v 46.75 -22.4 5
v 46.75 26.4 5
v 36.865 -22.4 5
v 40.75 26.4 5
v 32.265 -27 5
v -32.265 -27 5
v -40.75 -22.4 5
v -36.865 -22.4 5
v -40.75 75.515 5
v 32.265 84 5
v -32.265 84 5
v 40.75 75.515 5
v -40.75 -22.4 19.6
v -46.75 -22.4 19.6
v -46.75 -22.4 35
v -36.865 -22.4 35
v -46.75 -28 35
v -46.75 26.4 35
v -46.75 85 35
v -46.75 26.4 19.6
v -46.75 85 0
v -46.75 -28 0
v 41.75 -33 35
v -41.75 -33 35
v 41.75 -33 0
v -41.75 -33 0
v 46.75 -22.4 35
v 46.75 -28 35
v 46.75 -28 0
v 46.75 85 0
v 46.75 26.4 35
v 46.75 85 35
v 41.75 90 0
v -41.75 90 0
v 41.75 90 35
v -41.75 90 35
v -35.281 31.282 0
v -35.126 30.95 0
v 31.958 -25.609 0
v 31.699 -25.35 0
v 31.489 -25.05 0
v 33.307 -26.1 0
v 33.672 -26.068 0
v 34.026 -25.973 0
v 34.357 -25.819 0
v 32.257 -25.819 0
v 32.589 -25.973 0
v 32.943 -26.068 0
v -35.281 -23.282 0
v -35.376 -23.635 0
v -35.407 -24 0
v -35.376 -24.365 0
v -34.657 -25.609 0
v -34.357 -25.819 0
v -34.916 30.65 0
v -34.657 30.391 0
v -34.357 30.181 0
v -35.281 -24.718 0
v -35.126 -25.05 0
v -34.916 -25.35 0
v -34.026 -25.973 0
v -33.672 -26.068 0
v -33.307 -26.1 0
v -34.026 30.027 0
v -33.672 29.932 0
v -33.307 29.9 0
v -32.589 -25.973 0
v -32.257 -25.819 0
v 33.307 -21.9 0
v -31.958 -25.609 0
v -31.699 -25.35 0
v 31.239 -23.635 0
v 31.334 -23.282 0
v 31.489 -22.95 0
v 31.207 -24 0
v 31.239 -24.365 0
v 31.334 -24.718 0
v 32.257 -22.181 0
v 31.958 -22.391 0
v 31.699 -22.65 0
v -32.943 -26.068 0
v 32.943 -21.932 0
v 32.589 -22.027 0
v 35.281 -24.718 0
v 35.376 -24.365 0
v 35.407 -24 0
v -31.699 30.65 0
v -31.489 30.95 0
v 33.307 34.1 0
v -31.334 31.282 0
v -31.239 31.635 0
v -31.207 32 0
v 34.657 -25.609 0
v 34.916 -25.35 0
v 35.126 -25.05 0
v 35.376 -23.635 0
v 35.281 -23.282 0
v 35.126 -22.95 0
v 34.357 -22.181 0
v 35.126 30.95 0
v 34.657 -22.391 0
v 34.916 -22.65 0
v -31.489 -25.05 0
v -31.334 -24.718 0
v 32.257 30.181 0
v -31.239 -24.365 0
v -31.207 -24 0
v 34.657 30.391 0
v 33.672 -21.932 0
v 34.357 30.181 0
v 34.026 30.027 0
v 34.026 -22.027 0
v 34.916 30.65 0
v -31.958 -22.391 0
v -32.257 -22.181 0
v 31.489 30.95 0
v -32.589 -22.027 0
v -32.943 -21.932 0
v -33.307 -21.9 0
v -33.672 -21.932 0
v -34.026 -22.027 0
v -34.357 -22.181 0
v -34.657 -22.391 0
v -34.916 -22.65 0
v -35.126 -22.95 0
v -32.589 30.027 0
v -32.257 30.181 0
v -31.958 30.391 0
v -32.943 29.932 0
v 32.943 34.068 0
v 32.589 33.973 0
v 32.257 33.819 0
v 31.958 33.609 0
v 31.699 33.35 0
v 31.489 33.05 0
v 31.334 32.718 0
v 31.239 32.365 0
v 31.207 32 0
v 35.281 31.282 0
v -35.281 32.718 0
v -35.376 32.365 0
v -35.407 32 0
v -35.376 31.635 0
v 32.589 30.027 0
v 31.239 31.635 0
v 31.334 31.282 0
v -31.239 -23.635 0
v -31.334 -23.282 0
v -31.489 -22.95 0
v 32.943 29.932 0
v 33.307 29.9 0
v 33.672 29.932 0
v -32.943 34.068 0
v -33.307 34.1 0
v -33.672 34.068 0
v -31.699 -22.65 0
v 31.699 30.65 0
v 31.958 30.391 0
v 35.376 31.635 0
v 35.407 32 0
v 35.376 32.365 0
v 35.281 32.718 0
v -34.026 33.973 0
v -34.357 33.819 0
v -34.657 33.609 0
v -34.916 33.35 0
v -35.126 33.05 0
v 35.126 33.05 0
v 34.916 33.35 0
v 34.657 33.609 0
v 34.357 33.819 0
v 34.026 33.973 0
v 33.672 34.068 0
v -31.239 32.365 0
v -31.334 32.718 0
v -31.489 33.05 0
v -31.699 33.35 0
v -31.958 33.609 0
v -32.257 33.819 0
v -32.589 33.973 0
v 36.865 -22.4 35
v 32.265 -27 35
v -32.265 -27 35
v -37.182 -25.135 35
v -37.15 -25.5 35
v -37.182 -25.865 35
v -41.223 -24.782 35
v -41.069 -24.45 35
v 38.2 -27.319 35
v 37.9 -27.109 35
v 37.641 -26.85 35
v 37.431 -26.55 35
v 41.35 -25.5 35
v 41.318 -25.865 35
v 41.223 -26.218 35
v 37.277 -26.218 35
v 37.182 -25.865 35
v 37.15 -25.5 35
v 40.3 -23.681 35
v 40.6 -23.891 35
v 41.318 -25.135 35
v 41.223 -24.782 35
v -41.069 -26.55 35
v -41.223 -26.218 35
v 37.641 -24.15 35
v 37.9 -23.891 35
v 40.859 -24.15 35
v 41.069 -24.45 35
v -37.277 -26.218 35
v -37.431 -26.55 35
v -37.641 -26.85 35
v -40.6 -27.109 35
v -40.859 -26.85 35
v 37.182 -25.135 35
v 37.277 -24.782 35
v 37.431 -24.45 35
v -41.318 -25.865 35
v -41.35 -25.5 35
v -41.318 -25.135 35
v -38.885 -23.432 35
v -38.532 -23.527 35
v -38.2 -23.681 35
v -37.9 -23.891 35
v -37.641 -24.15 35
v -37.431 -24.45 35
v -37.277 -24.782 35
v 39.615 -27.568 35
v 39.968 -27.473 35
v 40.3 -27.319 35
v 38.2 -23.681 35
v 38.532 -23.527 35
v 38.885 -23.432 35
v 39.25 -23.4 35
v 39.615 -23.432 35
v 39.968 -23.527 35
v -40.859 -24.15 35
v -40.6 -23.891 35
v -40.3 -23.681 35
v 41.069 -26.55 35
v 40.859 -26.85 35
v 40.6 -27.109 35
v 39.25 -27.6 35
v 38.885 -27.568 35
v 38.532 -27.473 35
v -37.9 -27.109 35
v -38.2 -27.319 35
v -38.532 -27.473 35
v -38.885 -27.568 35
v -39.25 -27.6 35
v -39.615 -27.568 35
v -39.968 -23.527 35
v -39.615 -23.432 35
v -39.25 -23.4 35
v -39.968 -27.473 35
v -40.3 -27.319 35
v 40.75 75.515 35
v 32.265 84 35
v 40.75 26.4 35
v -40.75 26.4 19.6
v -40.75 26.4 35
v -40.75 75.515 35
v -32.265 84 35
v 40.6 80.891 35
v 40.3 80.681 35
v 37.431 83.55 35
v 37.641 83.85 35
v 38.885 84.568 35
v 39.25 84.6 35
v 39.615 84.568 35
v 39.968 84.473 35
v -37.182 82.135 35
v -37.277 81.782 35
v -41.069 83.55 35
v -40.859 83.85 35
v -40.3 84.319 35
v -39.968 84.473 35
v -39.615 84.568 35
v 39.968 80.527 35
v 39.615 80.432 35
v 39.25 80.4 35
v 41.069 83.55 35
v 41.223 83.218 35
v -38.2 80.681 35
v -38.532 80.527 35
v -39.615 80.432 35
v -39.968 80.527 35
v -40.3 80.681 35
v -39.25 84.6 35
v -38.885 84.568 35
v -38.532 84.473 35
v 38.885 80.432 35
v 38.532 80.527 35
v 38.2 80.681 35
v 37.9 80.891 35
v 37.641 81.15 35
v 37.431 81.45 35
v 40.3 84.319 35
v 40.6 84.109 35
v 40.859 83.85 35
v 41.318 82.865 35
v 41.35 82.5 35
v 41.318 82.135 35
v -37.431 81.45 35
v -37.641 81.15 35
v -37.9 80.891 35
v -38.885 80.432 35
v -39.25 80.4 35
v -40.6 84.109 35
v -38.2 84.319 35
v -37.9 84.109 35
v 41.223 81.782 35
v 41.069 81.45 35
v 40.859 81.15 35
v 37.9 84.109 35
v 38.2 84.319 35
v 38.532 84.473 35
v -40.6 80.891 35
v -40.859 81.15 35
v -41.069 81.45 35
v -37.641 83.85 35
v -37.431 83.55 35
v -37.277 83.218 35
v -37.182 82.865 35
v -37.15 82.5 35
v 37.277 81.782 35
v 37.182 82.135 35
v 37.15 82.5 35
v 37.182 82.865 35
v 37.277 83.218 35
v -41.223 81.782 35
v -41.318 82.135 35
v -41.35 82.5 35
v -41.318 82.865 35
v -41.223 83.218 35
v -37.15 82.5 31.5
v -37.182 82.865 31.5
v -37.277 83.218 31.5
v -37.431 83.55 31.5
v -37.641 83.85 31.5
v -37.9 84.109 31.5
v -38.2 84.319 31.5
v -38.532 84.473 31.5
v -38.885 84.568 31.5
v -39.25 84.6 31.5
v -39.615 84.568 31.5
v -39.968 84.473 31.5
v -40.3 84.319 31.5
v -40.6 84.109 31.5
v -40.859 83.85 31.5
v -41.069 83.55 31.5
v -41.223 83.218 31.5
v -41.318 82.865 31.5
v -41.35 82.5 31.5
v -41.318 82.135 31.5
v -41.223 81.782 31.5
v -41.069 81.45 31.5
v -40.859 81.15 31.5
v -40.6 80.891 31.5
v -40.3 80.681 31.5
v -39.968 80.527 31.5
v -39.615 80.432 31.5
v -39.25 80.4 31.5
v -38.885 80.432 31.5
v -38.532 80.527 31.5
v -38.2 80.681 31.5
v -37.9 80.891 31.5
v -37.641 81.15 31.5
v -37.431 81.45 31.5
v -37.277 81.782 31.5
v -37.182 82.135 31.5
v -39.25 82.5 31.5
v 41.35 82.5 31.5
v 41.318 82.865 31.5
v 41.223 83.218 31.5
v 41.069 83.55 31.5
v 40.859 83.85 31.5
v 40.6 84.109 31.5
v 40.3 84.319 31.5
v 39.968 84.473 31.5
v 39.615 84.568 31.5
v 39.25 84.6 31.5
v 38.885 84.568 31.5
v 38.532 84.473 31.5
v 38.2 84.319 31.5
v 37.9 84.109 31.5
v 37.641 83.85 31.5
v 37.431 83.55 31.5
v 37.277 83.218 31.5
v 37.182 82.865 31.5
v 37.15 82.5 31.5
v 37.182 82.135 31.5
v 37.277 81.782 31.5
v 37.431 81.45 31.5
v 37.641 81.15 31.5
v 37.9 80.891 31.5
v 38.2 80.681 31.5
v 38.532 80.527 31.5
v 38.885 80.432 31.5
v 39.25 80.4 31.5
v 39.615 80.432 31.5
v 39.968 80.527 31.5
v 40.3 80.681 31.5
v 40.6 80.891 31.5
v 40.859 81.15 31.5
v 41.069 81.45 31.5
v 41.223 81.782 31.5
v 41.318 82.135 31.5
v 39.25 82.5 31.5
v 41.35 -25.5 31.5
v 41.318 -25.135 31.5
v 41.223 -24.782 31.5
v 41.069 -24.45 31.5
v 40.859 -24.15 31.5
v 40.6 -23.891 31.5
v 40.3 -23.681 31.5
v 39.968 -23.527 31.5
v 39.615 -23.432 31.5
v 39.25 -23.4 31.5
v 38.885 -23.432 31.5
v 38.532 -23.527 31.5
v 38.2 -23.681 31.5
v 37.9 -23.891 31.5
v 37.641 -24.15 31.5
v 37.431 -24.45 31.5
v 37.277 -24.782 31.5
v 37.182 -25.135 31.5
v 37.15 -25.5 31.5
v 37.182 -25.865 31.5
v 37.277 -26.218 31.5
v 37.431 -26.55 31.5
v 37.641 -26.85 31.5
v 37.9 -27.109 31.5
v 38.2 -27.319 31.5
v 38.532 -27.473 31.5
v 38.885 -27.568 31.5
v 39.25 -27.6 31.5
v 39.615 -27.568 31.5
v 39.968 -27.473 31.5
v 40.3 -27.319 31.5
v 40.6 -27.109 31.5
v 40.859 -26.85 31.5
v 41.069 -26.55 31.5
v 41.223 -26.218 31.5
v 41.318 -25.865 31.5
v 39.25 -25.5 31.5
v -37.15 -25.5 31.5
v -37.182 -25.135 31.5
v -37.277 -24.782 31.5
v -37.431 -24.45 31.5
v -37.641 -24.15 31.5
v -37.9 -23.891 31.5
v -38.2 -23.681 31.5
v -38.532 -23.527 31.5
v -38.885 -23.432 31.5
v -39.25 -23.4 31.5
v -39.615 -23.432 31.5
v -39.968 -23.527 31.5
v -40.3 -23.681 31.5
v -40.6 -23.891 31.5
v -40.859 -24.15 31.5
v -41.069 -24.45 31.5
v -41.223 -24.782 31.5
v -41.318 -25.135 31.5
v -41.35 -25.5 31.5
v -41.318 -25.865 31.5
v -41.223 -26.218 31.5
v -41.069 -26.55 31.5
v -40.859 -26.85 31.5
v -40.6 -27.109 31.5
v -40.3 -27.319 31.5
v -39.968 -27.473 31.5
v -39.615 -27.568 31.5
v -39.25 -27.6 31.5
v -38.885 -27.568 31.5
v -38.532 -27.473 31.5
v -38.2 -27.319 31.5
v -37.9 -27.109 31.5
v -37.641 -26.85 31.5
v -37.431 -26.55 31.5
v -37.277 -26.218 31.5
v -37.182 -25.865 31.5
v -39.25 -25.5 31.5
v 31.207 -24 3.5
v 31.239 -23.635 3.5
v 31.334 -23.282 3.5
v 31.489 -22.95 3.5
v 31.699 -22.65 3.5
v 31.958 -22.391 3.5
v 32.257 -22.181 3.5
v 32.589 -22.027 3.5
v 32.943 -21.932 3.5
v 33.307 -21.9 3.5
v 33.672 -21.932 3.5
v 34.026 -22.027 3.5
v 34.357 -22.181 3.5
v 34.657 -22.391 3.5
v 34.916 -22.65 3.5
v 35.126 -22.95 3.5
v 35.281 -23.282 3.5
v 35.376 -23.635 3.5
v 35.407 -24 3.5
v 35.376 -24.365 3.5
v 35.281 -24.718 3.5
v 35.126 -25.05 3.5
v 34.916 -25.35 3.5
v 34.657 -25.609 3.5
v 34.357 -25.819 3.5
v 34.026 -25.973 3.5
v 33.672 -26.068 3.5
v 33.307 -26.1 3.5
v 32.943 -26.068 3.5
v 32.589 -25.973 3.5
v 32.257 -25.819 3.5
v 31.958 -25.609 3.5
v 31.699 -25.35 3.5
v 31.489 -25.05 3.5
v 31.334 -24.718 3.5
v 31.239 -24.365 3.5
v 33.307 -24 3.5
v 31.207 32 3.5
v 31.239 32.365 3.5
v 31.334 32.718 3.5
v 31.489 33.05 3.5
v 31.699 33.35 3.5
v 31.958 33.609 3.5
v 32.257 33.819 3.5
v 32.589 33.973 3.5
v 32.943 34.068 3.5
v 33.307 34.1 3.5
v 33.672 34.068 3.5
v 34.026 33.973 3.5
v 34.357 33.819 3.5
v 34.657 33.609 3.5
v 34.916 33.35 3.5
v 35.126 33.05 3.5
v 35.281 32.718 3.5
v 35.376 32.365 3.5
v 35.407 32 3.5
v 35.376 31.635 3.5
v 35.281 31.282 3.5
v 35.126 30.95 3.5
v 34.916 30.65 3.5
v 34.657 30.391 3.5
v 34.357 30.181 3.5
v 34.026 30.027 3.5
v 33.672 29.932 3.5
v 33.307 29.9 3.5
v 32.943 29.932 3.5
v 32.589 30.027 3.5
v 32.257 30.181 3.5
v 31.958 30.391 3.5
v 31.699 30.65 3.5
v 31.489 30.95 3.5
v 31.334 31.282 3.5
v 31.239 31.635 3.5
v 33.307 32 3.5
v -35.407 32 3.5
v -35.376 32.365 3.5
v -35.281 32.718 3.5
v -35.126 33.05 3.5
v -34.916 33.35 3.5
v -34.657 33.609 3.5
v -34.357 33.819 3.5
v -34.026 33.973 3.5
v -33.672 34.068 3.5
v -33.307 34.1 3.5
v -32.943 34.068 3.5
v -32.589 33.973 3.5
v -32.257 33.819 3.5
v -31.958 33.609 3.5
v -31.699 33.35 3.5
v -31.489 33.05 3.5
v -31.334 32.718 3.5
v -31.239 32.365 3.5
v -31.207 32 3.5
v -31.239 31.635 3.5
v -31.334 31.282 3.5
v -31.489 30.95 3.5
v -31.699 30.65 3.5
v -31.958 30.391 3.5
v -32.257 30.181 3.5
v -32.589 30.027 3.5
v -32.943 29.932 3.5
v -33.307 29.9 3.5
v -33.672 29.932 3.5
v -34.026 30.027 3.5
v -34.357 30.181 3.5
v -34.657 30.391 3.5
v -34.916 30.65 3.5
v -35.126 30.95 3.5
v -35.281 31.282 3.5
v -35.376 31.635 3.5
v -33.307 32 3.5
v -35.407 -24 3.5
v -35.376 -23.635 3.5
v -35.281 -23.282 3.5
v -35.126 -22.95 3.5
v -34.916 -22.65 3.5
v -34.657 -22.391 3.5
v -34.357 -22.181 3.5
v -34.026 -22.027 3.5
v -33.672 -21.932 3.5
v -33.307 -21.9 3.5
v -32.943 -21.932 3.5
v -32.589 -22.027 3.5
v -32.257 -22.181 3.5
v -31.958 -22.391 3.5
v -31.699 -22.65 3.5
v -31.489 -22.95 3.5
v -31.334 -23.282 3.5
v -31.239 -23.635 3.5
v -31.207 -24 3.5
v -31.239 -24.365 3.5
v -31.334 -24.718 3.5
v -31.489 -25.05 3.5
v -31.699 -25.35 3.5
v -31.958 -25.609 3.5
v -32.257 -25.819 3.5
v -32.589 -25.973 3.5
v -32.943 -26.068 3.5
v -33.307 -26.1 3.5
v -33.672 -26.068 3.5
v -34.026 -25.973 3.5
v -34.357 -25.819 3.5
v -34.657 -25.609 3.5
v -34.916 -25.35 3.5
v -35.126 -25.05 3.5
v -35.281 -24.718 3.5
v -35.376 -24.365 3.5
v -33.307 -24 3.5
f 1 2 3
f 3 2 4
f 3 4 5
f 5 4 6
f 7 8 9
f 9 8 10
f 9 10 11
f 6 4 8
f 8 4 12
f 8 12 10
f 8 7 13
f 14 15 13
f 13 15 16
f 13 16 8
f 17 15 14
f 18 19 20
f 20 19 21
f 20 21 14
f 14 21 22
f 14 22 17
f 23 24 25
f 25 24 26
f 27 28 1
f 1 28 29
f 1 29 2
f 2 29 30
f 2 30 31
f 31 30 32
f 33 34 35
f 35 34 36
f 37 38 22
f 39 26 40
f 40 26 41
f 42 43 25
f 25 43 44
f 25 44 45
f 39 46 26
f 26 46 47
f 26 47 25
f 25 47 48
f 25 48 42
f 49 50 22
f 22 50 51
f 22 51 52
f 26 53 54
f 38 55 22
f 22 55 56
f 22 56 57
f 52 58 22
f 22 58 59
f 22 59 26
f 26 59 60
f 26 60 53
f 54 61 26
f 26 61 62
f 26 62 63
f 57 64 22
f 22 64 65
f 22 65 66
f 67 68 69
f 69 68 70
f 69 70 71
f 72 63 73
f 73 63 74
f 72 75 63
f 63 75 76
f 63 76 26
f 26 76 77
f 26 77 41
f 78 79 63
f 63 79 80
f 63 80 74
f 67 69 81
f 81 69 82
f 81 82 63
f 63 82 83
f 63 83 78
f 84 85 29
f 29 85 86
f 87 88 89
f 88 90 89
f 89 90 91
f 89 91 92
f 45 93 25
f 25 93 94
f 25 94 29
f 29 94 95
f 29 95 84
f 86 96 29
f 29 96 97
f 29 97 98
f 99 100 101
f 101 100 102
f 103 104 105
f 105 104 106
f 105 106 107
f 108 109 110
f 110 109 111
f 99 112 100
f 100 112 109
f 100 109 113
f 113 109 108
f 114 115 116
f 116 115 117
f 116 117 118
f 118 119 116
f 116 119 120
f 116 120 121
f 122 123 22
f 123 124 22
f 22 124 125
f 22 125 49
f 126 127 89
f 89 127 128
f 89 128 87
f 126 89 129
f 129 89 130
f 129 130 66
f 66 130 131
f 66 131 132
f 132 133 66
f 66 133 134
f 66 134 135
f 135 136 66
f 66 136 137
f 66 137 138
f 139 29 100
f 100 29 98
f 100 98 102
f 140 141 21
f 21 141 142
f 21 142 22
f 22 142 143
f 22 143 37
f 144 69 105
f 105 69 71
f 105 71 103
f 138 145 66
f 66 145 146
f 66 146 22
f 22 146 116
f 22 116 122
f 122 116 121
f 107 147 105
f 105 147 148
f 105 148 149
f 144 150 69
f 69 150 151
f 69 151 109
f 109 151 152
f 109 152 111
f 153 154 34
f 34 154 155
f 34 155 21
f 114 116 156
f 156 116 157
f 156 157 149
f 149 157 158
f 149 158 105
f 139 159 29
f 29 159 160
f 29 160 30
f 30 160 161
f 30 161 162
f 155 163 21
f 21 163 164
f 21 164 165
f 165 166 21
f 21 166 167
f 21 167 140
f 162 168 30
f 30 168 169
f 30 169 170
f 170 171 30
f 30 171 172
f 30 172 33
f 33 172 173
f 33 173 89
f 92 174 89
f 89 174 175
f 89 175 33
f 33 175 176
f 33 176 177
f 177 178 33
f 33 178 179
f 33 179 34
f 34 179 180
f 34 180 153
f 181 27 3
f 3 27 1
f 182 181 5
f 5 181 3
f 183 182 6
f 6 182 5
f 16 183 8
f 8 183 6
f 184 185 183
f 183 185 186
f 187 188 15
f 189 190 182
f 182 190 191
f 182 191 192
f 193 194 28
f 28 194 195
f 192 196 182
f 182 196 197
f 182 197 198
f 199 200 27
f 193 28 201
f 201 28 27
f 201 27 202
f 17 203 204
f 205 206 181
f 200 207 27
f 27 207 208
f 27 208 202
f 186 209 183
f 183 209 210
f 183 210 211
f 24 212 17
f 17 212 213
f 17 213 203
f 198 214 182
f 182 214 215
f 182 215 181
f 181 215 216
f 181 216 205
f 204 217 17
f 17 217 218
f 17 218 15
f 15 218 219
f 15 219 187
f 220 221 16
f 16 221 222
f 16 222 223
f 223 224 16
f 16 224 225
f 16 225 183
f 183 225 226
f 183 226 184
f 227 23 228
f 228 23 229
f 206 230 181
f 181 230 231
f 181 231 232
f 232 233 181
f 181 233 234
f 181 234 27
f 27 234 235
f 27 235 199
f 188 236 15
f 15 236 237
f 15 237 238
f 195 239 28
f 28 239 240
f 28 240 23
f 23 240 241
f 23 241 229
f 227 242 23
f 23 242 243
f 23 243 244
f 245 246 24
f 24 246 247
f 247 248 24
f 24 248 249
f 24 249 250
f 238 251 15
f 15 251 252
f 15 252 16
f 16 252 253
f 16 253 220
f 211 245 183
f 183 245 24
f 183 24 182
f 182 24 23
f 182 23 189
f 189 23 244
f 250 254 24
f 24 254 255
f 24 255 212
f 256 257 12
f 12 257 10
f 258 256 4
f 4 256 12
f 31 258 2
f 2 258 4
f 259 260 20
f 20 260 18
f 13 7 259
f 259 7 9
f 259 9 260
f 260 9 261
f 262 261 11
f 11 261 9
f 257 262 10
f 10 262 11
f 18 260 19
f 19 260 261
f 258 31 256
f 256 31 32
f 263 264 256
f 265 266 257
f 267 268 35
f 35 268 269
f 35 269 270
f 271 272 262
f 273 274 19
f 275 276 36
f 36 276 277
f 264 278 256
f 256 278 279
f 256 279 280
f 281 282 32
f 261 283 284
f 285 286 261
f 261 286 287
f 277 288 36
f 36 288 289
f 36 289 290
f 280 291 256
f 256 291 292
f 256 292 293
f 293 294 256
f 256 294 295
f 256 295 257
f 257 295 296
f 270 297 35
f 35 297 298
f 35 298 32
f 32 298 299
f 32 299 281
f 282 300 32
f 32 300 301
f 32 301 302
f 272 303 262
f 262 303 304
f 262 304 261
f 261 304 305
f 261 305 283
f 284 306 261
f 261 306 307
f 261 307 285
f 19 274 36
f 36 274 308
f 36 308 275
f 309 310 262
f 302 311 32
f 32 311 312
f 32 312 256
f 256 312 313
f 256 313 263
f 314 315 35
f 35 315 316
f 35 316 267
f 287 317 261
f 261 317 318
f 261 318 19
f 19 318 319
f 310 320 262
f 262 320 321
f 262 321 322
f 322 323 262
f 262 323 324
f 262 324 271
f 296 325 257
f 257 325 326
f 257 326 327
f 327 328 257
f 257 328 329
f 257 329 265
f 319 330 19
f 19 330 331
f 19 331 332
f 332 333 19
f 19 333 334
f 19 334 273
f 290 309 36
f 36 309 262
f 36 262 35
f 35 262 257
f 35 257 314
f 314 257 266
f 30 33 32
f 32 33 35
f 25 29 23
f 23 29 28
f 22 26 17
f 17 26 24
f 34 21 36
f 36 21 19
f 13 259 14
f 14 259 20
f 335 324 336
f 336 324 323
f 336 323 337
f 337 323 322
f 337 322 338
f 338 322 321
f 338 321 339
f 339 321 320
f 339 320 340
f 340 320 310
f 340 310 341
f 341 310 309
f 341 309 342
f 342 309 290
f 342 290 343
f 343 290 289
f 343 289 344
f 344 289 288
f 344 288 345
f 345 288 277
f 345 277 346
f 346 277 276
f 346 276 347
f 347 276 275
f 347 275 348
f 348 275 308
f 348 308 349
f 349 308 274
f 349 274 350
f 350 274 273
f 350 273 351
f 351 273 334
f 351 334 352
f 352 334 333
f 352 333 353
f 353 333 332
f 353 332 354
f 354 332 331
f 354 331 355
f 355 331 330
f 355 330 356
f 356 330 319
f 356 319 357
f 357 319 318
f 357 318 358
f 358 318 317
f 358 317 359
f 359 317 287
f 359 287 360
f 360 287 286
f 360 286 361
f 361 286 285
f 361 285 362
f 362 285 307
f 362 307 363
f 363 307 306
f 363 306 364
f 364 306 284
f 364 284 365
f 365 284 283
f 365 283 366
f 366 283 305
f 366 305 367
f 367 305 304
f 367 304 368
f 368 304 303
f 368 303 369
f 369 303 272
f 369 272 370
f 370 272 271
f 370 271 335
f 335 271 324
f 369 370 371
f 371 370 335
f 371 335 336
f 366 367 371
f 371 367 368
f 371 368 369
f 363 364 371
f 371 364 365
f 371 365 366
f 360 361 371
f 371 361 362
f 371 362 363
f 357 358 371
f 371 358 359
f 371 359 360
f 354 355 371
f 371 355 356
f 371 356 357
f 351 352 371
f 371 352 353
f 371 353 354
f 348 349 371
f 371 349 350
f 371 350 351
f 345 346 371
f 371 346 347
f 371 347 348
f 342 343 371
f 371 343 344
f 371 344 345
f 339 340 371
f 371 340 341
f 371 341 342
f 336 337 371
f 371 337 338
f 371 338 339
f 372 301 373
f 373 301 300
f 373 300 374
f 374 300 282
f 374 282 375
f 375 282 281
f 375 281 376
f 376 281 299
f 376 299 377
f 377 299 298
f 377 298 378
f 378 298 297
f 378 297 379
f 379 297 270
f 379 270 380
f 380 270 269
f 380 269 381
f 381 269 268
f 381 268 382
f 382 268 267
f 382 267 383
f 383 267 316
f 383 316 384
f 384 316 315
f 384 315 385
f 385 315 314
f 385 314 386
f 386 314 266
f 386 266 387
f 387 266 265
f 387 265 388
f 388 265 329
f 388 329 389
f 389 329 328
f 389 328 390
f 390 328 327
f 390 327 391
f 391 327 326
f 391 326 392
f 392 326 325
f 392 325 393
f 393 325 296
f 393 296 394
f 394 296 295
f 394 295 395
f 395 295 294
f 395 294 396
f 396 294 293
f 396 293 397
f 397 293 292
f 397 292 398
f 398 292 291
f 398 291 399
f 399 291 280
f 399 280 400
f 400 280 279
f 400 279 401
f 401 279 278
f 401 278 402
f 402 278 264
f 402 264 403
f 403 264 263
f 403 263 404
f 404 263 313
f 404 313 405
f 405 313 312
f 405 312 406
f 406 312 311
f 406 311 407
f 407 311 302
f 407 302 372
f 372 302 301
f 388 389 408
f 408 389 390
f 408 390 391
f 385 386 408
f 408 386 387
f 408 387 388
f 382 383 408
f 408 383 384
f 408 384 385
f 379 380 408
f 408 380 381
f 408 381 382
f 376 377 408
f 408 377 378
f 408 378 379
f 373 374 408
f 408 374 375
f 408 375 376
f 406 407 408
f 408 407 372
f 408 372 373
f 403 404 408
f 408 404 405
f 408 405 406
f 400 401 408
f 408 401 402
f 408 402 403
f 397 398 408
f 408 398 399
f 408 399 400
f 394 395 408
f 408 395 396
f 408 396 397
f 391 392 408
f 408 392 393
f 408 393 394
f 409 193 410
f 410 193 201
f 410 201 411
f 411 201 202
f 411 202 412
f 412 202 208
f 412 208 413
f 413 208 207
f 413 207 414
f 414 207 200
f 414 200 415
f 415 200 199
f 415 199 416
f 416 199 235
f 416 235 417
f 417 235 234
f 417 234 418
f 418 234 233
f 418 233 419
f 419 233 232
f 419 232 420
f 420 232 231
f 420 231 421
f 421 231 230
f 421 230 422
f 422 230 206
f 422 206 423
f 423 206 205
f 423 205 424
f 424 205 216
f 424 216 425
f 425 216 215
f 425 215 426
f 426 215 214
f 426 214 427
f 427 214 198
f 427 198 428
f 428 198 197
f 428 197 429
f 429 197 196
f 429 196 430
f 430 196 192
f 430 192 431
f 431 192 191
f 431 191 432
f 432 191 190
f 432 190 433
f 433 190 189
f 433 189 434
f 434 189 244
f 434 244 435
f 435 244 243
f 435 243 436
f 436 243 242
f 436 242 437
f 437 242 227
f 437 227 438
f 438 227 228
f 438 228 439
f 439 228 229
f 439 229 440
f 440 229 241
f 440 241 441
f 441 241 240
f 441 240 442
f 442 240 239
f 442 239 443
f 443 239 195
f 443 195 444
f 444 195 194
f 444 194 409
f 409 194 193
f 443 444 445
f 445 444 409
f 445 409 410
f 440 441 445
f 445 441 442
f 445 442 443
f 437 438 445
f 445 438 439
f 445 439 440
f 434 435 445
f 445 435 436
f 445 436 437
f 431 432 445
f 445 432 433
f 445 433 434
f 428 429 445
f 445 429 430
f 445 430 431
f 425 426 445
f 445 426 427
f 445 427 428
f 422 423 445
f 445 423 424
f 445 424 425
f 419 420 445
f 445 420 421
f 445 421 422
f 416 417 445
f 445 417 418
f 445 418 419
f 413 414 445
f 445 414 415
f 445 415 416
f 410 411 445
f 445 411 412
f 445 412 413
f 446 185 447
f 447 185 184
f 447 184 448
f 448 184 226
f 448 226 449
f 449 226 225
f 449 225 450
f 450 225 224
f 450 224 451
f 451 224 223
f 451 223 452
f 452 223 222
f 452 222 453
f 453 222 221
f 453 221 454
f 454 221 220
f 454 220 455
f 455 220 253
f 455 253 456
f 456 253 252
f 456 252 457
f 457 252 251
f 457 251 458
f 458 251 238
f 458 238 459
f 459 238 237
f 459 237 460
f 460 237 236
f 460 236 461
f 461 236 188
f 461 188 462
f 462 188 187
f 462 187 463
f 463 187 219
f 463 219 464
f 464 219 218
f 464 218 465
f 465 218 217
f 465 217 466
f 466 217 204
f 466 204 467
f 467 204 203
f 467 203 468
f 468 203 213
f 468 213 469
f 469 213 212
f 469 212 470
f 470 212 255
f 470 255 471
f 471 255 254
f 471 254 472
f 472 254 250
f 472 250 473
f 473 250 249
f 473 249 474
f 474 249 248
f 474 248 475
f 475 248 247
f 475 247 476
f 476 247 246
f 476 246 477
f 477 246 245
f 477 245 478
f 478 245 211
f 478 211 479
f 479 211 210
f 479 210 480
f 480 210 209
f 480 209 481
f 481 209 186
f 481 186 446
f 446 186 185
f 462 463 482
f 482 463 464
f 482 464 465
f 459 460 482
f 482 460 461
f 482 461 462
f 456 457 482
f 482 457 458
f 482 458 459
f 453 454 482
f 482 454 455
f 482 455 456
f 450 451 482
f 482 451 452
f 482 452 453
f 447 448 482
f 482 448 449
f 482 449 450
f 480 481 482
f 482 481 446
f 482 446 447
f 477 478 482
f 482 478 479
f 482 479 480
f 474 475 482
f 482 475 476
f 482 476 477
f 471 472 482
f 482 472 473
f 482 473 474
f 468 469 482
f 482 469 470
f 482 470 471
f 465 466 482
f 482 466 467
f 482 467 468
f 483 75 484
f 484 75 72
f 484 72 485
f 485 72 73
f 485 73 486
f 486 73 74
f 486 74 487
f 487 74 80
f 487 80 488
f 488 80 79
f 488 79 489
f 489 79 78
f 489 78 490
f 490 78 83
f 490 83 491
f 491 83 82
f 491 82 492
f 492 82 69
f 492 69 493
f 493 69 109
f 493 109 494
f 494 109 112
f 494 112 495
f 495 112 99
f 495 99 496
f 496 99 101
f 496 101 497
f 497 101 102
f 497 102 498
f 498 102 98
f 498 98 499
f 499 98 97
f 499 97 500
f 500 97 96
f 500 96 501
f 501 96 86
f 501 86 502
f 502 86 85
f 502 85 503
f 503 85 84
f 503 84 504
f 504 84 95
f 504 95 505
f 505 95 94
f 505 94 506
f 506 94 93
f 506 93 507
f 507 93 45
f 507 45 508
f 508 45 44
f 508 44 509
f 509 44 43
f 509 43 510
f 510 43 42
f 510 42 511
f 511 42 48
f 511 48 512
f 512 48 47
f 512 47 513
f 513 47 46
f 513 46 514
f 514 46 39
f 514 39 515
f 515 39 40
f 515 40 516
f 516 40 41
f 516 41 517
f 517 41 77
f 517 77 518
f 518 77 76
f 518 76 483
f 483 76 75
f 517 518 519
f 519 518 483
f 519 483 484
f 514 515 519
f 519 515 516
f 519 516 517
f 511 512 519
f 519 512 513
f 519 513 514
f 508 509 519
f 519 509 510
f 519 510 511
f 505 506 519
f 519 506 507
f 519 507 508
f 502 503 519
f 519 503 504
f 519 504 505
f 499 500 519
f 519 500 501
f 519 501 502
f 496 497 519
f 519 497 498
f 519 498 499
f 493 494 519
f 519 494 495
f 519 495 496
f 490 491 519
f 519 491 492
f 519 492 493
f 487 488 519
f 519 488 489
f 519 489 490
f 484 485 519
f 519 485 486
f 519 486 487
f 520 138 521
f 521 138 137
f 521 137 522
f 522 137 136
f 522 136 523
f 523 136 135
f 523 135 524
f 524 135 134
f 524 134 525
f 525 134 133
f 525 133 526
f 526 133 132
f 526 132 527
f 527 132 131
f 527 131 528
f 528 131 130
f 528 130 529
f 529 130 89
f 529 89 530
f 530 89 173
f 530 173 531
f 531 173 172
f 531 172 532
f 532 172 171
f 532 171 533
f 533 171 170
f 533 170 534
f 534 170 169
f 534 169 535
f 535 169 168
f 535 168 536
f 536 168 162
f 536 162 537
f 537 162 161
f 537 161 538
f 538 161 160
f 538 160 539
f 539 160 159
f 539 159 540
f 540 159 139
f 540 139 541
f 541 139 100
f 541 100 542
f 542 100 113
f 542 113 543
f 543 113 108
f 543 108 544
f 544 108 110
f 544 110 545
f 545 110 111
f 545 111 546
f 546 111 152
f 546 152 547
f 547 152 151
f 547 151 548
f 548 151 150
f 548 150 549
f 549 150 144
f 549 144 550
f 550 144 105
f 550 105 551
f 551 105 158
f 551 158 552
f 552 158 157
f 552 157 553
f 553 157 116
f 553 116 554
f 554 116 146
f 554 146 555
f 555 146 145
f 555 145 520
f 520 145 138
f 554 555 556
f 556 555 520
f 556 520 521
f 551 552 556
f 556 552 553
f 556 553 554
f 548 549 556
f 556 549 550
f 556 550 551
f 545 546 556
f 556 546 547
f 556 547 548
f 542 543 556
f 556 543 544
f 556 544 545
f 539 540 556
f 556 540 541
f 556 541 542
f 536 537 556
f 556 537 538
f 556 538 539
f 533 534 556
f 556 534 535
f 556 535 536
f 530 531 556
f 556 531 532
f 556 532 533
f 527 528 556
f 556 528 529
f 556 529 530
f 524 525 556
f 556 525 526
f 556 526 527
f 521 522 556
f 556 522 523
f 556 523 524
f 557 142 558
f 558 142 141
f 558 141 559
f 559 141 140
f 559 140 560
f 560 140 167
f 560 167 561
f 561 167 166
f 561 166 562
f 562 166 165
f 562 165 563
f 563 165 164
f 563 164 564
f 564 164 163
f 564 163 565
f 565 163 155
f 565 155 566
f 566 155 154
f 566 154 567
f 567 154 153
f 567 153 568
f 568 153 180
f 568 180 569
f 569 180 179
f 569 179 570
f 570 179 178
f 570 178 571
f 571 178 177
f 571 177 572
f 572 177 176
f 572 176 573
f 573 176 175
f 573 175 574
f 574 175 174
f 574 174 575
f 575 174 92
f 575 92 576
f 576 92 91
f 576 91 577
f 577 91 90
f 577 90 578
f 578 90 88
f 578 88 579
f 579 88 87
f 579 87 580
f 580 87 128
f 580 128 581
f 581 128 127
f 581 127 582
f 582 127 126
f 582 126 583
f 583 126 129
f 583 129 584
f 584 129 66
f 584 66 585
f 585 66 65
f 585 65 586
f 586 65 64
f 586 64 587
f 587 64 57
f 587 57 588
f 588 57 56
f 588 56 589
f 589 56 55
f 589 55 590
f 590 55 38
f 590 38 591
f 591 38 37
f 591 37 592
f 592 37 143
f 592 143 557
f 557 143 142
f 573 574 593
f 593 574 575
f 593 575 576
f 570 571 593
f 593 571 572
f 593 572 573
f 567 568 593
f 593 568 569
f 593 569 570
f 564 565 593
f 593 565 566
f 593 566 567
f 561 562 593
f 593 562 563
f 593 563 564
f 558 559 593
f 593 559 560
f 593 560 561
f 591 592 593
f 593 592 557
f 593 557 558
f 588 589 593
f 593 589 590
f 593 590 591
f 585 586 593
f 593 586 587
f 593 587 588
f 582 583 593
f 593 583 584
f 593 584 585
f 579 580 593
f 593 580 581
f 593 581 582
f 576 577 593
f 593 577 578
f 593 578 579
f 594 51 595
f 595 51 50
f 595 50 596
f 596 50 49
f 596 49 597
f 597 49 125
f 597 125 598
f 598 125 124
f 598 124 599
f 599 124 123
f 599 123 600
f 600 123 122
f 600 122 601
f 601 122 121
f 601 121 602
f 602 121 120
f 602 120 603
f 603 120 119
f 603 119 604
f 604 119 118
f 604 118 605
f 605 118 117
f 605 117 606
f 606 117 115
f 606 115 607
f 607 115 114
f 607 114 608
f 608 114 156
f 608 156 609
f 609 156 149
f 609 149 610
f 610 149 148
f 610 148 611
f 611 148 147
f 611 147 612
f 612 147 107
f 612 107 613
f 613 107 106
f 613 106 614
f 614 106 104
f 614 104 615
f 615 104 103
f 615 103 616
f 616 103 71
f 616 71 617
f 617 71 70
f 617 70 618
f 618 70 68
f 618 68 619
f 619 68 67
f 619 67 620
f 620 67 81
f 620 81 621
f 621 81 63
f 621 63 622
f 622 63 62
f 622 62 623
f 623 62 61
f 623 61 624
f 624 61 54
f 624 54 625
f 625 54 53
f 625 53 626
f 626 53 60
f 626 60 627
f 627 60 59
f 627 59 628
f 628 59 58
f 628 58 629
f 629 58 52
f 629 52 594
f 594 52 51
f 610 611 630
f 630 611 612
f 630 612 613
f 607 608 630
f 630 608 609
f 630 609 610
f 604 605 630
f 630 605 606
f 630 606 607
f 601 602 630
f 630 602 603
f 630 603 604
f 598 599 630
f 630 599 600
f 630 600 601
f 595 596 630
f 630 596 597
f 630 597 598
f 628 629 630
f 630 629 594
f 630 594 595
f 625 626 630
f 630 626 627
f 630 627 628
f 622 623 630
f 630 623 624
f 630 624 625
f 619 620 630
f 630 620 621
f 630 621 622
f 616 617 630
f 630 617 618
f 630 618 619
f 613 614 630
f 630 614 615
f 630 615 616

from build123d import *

# Parameters (mm, degrees)
SKETCH1_W           = 93.5
SKETCH1_H           = 123
BOSS_EXTRUDE1_DEPTH = 5
BOSS_EXTRUDE2_DEPTH = 30
CHAMFER1_SIZE       = 5
SKETCH4_W           = 6
SKETCH4_H           = 48.8
BOSS_EXTRUDE3_DEPTH = 14.6
SKETCH5_R           = 2.1
CUT_EXTRUDE1_DEPTH  = 3.5
SKETCH6_R           = 2.1
CUT_EXTRUDE2_DEPTH  = 3.5


with BuildPart() as part:
    # Sketch1 → Boss-Extrude1 (new body)
    with BuildSketch(Plane.XY):
        with Locations((0, 28.5)):
            Rectangle(SKETCH1_W, SKETCH1_H)
    extrude(amount=BOSS_EXTRUDE1_DEPTH)

    # Sketch3 → Boss-Extrude2 (add)
    with BuildSketch(Plane.XY.offset(5)):
        Polygon((-40.75, -22.4), (-46.75, -22.4), (-46.75, -33), (46.75, -33), (46.75, -22.4), (40.75, -22.4), (40.75, -27), (32.264718626, -27), (-32.264718626, -27), (-40.75, -27), align=None)
        Polygon((-36.864718626, -22.4), (-40.75, -22.4), (-40.75, -27), (-32.264718626, -27), align=None)
        Polygon((40.75, -27), (40.75, -22.4), (36.864718626, -22.4), (32.264718626, -27), align=None)
        Polygon((-46.75, 90), (-46.75, 26.4), (-40.75, 26.4), (-40.75, 75.514718626), (-40.75, 84), (-32.264718626, 84), (32.264718626, 84), (40.75, 84), (40.75, 75.514718626), (40.75, 26.4), (46.75, 26.4), (46.75, 90), align=None)
        Polygon((40.75, 84), (32.264718626, 84), (40.75, 75.514718626), align=None)
        Polygon((-40.75, 84), (-40.75, 75.514718626), (-32.264718626, 84), align=None)
    extrude(amount=BOSS_EXTRUDE2_DEPTH)

    # Chamfer1
    chamfer1_edges = [part.edges().sort_by_distance(p)[0] for p in [
        (-46.75, 90, 17.5),
        (46.75, 90, 17.5),
        (46.75, -33, 17.5),
        (-46.75, -33, 17.5),
    ]]
    chamfer(chamfer1_edges, length=CHAMFER1_SIZE)

    # Sketch4 → Boss-Extrude3 (add)
    with BuildSketch(Plane.XY.offset(5)):
        with Locations((-43.75, 2)):
            Rectangle(SKETCH4_W, SKETCH4_H)
    extrude(amount=BOSS_EXTRUDE3_DEPTH)

    # Sketch5 → Cut-Extrude1 (cut)
    with BuildSketch(Plane.XY.offset(35)):
        with Locations((-39.25, 82.5)):
            Circle(SKETCH5_R)
        with Locations(Location((-39.25, -25.5, 0), (0, 0, 180))):
            Circle(SKETCH5_R)
        with Locations(Location((39.25, 82.5, 0), (0, 0, 180))):
            Circle(SKETCH5_R)
        with Locations((39.25, -25.5)):
            Circle(SKETCH5_R)
    extrude(amount=-CUT_EXTRUDE1_DEPTH, mode=Mode.SUBTRACT)

    # Sketch6 → Cut-Extrude2 (cut)
    with BuildSketch(Plane(origin=(0, 0, 0), x_dir=(-1, 0, 0), z_dir=(0, 0, -1))):
        with Locations((-33.307444613, -24)):
            Circle(SKETCH6_R)
        with Locations((-33.307444613, 32)):
            Circle(SKETCH6_R)
        with Locations(Location((33.307444613, 32, 0), (0, 0, 180))):
            Circle(SKETCH6_R)
        with Locations(Location((33.307444613, -24, 0), (0, 0, 180))):
            Circle(SKETCH6_R)
    extrude(amount=-CUT_EXTRUDE2_DEPTH, mode=Mode.SUBTRACT)


solid = part.part
